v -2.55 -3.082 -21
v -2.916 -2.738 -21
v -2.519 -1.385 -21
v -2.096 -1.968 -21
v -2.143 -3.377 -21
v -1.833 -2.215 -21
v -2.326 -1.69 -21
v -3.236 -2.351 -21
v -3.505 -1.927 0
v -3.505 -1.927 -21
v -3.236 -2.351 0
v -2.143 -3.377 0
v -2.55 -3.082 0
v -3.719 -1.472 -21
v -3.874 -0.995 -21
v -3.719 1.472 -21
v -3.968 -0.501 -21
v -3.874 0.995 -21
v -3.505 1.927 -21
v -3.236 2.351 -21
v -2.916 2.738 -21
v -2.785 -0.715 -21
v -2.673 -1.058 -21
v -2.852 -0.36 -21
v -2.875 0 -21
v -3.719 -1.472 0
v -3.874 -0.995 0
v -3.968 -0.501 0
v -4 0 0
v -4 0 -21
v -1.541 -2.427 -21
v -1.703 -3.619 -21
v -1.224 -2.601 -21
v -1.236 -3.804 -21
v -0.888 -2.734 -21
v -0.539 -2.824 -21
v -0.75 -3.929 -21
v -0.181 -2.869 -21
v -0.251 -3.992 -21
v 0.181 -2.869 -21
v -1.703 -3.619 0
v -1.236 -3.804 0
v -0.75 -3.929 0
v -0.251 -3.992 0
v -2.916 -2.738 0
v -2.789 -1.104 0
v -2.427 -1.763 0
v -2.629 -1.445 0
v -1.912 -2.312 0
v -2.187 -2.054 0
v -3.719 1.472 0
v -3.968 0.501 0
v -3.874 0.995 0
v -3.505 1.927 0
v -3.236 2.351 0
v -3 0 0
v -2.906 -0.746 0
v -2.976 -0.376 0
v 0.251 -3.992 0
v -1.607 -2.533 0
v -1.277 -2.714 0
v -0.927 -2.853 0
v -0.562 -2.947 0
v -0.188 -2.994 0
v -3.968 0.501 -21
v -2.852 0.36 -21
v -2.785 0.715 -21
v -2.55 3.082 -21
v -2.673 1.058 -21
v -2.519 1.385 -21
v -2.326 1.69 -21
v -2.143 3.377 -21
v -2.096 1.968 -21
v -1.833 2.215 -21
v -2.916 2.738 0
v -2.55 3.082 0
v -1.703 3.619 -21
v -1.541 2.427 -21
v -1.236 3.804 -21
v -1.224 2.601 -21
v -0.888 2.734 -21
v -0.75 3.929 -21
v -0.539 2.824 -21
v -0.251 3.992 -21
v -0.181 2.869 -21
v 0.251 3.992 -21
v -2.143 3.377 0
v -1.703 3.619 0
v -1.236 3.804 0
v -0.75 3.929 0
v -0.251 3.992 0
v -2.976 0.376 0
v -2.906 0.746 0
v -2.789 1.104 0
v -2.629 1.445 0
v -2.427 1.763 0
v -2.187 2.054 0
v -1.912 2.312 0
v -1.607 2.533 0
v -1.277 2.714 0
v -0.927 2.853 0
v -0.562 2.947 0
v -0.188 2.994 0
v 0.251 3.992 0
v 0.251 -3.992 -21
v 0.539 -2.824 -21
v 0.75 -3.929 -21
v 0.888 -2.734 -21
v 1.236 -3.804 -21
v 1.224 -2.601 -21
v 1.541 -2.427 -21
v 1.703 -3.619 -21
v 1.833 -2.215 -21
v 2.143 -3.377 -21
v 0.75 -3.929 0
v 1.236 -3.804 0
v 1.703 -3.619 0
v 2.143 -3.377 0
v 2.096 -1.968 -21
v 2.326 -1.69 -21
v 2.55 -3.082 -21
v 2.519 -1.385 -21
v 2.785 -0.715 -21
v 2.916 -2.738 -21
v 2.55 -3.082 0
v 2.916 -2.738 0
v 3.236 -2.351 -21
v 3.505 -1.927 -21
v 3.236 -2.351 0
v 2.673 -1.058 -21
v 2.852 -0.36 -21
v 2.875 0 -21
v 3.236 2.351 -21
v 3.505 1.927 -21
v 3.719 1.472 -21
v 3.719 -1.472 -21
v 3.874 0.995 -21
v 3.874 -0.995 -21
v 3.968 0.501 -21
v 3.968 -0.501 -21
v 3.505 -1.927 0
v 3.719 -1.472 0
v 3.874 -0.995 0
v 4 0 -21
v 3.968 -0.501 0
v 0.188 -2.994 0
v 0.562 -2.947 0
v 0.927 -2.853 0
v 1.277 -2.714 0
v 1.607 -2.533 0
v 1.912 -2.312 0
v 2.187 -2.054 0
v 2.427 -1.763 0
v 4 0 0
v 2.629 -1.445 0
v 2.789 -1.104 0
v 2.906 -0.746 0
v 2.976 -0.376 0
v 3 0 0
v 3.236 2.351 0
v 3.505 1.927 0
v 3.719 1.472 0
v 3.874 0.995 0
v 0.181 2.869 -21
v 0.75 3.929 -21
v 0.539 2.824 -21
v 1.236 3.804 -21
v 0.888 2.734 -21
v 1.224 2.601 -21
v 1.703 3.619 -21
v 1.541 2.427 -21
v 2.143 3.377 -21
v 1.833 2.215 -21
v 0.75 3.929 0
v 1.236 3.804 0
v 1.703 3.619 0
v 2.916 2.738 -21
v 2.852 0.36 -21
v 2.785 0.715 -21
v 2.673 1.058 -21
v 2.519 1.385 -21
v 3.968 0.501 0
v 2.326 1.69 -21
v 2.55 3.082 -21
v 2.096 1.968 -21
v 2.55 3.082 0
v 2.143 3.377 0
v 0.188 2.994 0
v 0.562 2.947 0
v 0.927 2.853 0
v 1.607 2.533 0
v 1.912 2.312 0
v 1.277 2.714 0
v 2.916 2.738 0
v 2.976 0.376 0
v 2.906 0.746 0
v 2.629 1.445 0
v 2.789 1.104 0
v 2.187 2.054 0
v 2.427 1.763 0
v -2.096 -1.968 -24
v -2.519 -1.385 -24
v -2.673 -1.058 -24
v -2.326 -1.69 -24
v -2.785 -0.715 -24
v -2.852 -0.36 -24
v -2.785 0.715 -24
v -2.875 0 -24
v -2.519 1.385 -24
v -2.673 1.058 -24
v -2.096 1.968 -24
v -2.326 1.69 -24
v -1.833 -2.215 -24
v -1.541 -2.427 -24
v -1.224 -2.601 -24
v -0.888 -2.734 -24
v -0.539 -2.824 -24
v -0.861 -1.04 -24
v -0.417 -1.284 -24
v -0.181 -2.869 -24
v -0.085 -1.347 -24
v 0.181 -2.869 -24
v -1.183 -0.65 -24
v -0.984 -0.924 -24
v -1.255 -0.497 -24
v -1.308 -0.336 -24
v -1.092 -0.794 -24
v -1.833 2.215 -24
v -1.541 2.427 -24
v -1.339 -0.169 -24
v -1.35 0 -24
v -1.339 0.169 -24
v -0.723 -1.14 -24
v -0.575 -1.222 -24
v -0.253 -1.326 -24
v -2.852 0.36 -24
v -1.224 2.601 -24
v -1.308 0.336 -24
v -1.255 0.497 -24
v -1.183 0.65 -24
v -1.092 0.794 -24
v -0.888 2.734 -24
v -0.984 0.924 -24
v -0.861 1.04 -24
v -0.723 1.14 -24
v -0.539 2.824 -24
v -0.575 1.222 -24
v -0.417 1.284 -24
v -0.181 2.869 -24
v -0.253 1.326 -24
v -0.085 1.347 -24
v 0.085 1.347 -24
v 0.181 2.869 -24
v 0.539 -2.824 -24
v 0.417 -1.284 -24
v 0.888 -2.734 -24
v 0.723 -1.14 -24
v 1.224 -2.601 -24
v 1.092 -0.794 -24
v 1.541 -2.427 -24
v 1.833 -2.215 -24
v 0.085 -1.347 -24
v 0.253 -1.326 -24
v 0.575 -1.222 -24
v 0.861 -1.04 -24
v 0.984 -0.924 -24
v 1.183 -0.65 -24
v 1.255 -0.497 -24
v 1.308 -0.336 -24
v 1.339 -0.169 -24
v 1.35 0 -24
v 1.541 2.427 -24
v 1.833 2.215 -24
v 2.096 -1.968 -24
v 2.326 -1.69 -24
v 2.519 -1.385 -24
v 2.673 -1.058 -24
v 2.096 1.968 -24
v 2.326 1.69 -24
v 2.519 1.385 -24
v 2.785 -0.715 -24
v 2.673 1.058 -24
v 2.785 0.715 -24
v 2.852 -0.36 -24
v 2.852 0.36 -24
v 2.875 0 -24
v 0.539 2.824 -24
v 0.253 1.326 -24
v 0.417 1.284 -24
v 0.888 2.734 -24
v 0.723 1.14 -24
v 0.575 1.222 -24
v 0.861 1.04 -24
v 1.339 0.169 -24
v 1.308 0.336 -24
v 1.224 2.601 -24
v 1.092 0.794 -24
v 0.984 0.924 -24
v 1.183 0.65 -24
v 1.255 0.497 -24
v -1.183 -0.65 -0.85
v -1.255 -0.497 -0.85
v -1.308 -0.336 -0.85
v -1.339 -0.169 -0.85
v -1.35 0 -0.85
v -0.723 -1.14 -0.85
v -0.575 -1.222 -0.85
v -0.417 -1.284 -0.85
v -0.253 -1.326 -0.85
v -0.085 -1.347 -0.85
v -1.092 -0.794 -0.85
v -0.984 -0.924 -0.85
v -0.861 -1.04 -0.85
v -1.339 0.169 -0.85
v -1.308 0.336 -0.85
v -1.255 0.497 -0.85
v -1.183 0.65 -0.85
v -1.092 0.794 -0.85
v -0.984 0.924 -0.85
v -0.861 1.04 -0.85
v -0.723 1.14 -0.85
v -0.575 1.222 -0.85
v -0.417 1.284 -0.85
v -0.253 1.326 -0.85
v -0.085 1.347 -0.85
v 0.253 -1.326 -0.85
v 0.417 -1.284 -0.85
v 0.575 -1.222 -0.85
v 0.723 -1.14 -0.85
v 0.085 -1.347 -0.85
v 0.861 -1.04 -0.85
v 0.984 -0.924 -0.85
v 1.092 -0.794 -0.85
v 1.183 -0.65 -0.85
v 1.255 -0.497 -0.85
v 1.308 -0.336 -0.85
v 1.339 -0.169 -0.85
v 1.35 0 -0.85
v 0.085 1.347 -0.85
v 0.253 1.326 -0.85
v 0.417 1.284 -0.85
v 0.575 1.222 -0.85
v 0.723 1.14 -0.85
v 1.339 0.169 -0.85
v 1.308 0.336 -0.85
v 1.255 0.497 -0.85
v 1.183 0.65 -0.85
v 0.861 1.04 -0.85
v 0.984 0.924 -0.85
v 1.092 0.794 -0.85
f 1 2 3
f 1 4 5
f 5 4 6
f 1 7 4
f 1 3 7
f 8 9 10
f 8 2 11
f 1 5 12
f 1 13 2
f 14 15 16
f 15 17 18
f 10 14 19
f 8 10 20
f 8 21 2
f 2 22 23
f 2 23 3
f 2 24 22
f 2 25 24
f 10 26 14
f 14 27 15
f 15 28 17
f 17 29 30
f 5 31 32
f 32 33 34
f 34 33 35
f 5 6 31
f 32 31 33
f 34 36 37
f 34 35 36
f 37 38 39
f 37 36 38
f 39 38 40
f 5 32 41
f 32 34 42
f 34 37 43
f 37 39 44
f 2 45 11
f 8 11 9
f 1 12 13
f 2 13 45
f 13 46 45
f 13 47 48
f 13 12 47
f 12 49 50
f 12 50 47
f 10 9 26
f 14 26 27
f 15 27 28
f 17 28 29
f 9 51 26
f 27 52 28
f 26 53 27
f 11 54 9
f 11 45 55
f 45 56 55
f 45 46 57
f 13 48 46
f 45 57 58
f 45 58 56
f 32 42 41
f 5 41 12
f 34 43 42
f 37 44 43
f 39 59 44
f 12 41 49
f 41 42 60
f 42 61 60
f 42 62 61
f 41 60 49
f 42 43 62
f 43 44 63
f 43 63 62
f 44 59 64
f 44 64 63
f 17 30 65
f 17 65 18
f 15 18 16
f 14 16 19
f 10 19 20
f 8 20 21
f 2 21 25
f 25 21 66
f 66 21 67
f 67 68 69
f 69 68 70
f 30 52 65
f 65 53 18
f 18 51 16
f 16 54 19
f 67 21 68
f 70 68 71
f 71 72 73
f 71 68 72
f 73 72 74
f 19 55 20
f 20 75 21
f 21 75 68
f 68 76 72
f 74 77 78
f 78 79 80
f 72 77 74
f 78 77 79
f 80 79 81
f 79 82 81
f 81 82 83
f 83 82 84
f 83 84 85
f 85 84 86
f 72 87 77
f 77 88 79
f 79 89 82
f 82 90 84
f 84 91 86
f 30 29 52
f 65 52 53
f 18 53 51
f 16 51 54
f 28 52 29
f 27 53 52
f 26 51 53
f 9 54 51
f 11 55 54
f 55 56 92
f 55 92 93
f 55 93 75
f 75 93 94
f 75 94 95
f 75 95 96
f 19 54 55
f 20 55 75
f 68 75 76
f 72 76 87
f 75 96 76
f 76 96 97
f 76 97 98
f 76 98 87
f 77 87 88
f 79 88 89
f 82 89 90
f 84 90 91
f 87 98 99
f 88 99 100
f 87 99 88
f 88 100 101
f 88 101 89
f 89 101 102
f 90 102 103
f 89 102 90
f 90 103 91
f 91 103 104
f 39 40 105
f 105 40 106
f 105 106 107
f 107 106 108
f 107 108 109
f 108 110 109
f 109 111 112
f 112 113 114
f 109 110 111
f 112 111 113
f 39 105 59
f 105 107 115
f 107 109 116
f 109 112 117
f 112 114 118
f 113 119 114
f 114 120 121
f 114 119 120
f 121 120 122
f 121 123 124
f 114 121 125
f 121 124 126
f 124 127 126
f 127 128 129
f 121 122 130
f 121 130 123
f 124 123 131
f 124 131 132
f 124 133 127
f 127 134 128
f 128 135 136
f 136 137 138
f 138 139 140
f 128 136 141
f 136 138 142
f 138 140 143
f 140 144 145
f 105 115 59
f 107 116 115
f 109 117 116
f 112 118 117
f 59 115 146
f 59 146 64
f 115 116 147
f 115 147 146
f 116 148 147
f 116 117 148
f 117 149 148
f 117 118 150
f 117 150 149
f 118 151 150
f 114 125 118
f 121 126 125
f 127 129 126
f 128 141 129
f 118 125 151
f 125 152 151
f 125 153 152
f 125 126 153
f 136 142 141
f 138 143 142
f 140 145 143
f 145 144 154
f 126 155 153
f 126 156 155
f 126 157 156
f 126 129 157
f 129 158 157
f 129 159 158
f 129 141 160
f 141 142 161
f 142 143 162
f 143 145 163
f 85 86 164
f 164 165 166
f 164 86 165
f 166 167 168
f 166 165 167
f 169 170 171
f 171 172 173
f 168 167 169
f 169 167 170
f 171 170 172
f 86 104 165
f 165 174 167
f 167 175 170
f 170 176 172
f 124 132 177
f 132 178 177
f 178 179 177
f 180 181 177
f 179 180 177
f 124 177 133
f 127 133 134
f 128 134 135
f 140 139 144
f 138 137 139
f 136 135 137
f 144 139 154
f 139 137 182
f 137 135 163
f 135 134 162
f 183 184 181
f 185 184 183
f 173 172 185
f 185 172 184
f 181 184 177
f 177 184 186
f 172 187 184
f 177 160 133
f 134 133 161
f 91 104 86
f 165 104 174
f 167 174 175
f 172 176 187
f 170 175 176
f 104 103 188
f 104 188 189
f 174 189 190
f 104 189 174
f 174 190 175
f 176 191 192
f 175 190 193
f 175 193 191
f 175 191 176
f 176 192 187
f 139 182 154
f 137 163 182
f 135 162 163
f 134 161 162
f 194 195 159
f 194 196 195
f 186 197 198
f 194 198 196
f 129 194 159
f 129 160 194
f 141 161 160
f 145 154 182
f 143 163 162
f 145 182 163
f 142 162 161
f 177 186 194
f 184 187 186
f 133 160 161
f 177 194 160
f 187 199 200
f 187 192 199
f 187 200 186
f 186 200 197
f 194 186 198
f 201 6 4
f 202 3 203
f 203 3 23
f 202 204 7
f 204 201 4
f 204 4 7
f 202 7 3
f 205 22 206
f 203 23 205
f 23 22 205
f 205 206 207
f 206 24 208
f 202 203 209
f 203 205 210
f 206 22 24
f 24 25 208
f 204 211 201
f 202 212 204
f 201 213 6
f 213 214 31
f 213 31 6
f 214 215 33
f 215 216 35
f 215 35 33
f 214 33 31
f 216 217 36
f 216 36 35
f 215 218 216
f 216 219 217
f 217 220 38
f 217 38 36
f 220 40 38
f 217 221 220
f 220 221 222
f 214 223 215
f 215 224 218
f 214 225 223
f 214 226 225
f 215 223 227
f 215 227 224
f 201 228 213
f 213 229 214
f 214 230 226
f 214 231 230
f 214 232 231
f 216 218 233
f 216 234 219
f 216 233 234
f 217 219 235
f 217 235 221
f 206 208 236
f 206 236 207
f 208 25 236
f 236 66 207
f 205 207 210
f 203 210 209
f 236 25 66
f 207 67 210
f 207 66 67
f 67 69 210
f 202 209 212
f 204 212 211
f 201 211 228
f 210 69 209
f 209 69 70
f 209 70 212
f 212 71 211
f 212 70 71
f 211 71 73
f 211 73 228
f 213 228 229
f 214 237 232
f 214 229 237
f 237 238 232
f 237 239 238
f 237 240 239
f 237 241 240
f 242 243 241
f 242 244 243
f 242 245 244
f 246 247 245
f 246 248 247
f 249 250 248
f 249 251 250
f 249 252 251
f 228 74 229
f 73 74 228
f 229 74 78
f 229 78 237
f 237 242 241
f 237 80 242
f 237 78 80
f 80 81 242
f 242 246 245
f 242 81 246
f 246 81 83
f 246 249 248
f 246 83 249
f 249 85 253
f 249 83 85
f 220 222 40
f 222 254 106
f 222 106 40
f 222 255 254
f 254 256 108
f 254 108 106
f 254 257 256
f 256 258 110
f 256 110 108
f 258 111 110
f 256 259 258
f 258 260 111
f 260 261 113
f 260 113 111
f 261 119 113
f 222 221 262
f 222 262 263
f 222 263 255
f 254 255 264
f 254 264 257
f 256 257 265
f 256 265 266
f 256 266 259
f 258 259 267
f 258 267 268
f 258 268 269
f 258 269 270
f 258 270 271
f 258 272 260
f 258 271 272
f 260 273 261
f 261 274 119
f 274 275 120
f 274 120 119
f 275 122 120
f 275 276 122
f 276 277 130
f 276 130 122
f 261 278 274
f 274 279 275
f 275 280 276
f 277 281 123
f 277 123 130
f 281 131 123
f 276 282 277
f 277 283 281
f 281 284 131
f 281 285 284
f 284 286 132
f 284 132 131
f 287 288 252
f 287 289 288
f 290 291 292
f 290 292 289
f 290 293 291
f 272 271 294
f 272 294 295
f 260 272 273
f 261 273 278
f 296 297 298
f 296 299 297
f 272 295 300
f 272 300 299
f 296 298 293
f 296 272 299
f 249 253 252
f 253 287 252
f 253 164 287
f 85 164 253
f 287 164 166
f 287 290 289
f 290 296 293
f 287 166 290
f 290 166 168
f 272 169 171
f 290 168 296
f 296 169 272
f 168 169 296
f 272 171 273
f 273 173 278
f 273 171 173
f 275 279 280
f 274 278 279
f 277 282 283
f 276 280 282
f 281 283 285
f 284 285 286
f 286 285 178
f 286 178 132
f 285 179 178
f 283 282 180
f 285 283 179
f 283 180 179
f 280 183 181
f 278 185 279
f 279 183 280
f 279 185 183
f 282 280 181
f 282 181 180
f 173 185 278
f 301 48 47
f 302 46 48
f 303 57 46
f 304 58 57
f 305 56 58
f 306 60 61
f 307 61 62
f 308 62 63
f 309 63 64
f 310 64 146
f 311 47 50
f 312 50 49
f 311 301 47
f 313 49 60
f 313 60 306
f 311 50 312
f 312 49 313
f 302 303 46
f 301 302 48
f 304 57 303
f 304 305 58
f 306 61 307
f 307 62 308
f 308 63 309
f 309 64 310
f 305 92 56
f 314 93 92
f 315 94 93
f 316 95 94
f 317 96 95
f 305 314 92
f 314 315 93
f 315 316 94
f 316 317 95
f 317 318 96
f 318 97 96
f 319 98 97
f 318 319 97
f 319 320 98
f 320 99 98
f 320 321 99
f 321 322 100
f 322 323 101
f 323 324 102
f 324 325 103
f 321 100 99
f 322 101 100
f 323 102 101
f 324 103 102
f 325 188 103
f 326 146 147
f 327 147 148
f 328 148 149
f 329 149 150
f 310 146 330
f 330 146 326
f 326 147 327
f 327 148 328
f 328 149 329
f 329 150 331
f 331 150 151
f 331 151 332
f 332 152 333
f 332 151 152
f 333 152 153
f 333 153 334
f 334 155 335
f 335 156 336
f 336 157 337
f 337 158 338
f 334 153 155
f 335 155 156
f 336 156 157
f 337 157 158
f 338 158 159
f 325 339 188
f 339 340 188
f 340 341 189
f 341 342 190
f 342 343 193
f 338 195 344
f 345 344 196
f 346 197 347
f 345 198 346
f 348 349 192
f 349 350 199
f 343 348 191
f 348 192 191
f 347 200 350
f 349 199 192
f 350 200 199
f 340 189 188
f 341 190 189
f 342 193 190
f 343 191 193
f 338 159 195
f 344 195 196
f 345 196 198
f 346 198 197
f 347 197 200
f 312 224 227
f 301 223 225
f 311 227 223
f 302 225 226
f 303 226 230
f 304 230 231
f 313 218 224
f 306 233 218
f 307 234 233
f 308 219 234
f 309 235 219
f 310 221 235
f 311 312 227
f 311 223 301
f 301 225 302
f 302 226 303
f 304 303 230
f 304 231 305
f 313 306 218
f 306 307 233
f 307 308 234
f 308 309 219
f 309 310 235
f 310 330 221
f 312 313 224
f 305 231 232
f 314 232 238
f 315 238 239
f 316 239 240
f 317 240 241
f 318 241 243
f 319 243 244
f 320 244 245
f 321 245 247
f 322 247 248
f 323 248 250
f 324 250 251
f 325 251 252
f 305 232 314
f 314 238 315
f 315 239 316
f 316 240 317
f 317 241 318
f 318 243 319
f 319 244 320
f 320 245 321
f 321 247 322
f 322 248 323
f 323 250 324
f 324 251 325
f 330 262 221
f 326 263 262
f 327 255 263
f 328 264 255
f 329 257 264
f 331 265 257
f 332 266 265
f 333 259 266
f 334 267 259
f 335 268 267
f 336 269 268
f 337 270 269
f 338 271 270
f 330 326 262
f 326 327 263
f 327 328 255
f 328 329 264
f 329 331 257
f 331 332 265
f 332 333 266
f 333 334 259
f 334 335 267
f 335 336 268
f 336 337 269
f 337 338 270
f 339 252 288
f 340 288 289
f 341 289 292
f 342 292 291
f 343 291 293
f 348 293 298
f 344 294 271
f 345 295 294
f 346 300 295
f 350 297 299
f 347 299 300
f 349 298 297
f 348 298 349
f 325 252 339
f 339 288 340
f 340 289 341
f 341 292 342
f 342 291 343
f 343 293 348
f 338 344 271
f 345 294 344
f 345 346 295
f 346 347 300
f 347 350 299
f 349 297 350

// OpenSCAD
$fn = 50;

difference() {
	union() {
		translate(v = [0, 0, -21.0]) {
			cylinder(h = 21, r = 4.0);
		}
		#translate(v = [0, 0, -24.0]) {
			cylinder(h = 24, r = 2.875);
		}
	}
	union() {
		translate(v = [0, 0, 0]) {
			rotate(a = [0, 0, 0]) {
				difference() {
					union() {
						translate(v = [0, 0, -24.0]) {
							cylinder(h = 24, r = 1.0);
						}
						translate(v = [0, 0, -0.85]) {
							cylinder(h = 0.85, r1 = 1.35, r2 = 3.0);
						}
						translate(v = [0, 0, -24.0]) {
							cylinder(h = 24, r = 1.35);
						}
						translate(v = [0, 0, -24.0]) {
							cylinder(h = 24, r = 1.0);
						}
					}
					union();
				}
			}
		}
	}
}
